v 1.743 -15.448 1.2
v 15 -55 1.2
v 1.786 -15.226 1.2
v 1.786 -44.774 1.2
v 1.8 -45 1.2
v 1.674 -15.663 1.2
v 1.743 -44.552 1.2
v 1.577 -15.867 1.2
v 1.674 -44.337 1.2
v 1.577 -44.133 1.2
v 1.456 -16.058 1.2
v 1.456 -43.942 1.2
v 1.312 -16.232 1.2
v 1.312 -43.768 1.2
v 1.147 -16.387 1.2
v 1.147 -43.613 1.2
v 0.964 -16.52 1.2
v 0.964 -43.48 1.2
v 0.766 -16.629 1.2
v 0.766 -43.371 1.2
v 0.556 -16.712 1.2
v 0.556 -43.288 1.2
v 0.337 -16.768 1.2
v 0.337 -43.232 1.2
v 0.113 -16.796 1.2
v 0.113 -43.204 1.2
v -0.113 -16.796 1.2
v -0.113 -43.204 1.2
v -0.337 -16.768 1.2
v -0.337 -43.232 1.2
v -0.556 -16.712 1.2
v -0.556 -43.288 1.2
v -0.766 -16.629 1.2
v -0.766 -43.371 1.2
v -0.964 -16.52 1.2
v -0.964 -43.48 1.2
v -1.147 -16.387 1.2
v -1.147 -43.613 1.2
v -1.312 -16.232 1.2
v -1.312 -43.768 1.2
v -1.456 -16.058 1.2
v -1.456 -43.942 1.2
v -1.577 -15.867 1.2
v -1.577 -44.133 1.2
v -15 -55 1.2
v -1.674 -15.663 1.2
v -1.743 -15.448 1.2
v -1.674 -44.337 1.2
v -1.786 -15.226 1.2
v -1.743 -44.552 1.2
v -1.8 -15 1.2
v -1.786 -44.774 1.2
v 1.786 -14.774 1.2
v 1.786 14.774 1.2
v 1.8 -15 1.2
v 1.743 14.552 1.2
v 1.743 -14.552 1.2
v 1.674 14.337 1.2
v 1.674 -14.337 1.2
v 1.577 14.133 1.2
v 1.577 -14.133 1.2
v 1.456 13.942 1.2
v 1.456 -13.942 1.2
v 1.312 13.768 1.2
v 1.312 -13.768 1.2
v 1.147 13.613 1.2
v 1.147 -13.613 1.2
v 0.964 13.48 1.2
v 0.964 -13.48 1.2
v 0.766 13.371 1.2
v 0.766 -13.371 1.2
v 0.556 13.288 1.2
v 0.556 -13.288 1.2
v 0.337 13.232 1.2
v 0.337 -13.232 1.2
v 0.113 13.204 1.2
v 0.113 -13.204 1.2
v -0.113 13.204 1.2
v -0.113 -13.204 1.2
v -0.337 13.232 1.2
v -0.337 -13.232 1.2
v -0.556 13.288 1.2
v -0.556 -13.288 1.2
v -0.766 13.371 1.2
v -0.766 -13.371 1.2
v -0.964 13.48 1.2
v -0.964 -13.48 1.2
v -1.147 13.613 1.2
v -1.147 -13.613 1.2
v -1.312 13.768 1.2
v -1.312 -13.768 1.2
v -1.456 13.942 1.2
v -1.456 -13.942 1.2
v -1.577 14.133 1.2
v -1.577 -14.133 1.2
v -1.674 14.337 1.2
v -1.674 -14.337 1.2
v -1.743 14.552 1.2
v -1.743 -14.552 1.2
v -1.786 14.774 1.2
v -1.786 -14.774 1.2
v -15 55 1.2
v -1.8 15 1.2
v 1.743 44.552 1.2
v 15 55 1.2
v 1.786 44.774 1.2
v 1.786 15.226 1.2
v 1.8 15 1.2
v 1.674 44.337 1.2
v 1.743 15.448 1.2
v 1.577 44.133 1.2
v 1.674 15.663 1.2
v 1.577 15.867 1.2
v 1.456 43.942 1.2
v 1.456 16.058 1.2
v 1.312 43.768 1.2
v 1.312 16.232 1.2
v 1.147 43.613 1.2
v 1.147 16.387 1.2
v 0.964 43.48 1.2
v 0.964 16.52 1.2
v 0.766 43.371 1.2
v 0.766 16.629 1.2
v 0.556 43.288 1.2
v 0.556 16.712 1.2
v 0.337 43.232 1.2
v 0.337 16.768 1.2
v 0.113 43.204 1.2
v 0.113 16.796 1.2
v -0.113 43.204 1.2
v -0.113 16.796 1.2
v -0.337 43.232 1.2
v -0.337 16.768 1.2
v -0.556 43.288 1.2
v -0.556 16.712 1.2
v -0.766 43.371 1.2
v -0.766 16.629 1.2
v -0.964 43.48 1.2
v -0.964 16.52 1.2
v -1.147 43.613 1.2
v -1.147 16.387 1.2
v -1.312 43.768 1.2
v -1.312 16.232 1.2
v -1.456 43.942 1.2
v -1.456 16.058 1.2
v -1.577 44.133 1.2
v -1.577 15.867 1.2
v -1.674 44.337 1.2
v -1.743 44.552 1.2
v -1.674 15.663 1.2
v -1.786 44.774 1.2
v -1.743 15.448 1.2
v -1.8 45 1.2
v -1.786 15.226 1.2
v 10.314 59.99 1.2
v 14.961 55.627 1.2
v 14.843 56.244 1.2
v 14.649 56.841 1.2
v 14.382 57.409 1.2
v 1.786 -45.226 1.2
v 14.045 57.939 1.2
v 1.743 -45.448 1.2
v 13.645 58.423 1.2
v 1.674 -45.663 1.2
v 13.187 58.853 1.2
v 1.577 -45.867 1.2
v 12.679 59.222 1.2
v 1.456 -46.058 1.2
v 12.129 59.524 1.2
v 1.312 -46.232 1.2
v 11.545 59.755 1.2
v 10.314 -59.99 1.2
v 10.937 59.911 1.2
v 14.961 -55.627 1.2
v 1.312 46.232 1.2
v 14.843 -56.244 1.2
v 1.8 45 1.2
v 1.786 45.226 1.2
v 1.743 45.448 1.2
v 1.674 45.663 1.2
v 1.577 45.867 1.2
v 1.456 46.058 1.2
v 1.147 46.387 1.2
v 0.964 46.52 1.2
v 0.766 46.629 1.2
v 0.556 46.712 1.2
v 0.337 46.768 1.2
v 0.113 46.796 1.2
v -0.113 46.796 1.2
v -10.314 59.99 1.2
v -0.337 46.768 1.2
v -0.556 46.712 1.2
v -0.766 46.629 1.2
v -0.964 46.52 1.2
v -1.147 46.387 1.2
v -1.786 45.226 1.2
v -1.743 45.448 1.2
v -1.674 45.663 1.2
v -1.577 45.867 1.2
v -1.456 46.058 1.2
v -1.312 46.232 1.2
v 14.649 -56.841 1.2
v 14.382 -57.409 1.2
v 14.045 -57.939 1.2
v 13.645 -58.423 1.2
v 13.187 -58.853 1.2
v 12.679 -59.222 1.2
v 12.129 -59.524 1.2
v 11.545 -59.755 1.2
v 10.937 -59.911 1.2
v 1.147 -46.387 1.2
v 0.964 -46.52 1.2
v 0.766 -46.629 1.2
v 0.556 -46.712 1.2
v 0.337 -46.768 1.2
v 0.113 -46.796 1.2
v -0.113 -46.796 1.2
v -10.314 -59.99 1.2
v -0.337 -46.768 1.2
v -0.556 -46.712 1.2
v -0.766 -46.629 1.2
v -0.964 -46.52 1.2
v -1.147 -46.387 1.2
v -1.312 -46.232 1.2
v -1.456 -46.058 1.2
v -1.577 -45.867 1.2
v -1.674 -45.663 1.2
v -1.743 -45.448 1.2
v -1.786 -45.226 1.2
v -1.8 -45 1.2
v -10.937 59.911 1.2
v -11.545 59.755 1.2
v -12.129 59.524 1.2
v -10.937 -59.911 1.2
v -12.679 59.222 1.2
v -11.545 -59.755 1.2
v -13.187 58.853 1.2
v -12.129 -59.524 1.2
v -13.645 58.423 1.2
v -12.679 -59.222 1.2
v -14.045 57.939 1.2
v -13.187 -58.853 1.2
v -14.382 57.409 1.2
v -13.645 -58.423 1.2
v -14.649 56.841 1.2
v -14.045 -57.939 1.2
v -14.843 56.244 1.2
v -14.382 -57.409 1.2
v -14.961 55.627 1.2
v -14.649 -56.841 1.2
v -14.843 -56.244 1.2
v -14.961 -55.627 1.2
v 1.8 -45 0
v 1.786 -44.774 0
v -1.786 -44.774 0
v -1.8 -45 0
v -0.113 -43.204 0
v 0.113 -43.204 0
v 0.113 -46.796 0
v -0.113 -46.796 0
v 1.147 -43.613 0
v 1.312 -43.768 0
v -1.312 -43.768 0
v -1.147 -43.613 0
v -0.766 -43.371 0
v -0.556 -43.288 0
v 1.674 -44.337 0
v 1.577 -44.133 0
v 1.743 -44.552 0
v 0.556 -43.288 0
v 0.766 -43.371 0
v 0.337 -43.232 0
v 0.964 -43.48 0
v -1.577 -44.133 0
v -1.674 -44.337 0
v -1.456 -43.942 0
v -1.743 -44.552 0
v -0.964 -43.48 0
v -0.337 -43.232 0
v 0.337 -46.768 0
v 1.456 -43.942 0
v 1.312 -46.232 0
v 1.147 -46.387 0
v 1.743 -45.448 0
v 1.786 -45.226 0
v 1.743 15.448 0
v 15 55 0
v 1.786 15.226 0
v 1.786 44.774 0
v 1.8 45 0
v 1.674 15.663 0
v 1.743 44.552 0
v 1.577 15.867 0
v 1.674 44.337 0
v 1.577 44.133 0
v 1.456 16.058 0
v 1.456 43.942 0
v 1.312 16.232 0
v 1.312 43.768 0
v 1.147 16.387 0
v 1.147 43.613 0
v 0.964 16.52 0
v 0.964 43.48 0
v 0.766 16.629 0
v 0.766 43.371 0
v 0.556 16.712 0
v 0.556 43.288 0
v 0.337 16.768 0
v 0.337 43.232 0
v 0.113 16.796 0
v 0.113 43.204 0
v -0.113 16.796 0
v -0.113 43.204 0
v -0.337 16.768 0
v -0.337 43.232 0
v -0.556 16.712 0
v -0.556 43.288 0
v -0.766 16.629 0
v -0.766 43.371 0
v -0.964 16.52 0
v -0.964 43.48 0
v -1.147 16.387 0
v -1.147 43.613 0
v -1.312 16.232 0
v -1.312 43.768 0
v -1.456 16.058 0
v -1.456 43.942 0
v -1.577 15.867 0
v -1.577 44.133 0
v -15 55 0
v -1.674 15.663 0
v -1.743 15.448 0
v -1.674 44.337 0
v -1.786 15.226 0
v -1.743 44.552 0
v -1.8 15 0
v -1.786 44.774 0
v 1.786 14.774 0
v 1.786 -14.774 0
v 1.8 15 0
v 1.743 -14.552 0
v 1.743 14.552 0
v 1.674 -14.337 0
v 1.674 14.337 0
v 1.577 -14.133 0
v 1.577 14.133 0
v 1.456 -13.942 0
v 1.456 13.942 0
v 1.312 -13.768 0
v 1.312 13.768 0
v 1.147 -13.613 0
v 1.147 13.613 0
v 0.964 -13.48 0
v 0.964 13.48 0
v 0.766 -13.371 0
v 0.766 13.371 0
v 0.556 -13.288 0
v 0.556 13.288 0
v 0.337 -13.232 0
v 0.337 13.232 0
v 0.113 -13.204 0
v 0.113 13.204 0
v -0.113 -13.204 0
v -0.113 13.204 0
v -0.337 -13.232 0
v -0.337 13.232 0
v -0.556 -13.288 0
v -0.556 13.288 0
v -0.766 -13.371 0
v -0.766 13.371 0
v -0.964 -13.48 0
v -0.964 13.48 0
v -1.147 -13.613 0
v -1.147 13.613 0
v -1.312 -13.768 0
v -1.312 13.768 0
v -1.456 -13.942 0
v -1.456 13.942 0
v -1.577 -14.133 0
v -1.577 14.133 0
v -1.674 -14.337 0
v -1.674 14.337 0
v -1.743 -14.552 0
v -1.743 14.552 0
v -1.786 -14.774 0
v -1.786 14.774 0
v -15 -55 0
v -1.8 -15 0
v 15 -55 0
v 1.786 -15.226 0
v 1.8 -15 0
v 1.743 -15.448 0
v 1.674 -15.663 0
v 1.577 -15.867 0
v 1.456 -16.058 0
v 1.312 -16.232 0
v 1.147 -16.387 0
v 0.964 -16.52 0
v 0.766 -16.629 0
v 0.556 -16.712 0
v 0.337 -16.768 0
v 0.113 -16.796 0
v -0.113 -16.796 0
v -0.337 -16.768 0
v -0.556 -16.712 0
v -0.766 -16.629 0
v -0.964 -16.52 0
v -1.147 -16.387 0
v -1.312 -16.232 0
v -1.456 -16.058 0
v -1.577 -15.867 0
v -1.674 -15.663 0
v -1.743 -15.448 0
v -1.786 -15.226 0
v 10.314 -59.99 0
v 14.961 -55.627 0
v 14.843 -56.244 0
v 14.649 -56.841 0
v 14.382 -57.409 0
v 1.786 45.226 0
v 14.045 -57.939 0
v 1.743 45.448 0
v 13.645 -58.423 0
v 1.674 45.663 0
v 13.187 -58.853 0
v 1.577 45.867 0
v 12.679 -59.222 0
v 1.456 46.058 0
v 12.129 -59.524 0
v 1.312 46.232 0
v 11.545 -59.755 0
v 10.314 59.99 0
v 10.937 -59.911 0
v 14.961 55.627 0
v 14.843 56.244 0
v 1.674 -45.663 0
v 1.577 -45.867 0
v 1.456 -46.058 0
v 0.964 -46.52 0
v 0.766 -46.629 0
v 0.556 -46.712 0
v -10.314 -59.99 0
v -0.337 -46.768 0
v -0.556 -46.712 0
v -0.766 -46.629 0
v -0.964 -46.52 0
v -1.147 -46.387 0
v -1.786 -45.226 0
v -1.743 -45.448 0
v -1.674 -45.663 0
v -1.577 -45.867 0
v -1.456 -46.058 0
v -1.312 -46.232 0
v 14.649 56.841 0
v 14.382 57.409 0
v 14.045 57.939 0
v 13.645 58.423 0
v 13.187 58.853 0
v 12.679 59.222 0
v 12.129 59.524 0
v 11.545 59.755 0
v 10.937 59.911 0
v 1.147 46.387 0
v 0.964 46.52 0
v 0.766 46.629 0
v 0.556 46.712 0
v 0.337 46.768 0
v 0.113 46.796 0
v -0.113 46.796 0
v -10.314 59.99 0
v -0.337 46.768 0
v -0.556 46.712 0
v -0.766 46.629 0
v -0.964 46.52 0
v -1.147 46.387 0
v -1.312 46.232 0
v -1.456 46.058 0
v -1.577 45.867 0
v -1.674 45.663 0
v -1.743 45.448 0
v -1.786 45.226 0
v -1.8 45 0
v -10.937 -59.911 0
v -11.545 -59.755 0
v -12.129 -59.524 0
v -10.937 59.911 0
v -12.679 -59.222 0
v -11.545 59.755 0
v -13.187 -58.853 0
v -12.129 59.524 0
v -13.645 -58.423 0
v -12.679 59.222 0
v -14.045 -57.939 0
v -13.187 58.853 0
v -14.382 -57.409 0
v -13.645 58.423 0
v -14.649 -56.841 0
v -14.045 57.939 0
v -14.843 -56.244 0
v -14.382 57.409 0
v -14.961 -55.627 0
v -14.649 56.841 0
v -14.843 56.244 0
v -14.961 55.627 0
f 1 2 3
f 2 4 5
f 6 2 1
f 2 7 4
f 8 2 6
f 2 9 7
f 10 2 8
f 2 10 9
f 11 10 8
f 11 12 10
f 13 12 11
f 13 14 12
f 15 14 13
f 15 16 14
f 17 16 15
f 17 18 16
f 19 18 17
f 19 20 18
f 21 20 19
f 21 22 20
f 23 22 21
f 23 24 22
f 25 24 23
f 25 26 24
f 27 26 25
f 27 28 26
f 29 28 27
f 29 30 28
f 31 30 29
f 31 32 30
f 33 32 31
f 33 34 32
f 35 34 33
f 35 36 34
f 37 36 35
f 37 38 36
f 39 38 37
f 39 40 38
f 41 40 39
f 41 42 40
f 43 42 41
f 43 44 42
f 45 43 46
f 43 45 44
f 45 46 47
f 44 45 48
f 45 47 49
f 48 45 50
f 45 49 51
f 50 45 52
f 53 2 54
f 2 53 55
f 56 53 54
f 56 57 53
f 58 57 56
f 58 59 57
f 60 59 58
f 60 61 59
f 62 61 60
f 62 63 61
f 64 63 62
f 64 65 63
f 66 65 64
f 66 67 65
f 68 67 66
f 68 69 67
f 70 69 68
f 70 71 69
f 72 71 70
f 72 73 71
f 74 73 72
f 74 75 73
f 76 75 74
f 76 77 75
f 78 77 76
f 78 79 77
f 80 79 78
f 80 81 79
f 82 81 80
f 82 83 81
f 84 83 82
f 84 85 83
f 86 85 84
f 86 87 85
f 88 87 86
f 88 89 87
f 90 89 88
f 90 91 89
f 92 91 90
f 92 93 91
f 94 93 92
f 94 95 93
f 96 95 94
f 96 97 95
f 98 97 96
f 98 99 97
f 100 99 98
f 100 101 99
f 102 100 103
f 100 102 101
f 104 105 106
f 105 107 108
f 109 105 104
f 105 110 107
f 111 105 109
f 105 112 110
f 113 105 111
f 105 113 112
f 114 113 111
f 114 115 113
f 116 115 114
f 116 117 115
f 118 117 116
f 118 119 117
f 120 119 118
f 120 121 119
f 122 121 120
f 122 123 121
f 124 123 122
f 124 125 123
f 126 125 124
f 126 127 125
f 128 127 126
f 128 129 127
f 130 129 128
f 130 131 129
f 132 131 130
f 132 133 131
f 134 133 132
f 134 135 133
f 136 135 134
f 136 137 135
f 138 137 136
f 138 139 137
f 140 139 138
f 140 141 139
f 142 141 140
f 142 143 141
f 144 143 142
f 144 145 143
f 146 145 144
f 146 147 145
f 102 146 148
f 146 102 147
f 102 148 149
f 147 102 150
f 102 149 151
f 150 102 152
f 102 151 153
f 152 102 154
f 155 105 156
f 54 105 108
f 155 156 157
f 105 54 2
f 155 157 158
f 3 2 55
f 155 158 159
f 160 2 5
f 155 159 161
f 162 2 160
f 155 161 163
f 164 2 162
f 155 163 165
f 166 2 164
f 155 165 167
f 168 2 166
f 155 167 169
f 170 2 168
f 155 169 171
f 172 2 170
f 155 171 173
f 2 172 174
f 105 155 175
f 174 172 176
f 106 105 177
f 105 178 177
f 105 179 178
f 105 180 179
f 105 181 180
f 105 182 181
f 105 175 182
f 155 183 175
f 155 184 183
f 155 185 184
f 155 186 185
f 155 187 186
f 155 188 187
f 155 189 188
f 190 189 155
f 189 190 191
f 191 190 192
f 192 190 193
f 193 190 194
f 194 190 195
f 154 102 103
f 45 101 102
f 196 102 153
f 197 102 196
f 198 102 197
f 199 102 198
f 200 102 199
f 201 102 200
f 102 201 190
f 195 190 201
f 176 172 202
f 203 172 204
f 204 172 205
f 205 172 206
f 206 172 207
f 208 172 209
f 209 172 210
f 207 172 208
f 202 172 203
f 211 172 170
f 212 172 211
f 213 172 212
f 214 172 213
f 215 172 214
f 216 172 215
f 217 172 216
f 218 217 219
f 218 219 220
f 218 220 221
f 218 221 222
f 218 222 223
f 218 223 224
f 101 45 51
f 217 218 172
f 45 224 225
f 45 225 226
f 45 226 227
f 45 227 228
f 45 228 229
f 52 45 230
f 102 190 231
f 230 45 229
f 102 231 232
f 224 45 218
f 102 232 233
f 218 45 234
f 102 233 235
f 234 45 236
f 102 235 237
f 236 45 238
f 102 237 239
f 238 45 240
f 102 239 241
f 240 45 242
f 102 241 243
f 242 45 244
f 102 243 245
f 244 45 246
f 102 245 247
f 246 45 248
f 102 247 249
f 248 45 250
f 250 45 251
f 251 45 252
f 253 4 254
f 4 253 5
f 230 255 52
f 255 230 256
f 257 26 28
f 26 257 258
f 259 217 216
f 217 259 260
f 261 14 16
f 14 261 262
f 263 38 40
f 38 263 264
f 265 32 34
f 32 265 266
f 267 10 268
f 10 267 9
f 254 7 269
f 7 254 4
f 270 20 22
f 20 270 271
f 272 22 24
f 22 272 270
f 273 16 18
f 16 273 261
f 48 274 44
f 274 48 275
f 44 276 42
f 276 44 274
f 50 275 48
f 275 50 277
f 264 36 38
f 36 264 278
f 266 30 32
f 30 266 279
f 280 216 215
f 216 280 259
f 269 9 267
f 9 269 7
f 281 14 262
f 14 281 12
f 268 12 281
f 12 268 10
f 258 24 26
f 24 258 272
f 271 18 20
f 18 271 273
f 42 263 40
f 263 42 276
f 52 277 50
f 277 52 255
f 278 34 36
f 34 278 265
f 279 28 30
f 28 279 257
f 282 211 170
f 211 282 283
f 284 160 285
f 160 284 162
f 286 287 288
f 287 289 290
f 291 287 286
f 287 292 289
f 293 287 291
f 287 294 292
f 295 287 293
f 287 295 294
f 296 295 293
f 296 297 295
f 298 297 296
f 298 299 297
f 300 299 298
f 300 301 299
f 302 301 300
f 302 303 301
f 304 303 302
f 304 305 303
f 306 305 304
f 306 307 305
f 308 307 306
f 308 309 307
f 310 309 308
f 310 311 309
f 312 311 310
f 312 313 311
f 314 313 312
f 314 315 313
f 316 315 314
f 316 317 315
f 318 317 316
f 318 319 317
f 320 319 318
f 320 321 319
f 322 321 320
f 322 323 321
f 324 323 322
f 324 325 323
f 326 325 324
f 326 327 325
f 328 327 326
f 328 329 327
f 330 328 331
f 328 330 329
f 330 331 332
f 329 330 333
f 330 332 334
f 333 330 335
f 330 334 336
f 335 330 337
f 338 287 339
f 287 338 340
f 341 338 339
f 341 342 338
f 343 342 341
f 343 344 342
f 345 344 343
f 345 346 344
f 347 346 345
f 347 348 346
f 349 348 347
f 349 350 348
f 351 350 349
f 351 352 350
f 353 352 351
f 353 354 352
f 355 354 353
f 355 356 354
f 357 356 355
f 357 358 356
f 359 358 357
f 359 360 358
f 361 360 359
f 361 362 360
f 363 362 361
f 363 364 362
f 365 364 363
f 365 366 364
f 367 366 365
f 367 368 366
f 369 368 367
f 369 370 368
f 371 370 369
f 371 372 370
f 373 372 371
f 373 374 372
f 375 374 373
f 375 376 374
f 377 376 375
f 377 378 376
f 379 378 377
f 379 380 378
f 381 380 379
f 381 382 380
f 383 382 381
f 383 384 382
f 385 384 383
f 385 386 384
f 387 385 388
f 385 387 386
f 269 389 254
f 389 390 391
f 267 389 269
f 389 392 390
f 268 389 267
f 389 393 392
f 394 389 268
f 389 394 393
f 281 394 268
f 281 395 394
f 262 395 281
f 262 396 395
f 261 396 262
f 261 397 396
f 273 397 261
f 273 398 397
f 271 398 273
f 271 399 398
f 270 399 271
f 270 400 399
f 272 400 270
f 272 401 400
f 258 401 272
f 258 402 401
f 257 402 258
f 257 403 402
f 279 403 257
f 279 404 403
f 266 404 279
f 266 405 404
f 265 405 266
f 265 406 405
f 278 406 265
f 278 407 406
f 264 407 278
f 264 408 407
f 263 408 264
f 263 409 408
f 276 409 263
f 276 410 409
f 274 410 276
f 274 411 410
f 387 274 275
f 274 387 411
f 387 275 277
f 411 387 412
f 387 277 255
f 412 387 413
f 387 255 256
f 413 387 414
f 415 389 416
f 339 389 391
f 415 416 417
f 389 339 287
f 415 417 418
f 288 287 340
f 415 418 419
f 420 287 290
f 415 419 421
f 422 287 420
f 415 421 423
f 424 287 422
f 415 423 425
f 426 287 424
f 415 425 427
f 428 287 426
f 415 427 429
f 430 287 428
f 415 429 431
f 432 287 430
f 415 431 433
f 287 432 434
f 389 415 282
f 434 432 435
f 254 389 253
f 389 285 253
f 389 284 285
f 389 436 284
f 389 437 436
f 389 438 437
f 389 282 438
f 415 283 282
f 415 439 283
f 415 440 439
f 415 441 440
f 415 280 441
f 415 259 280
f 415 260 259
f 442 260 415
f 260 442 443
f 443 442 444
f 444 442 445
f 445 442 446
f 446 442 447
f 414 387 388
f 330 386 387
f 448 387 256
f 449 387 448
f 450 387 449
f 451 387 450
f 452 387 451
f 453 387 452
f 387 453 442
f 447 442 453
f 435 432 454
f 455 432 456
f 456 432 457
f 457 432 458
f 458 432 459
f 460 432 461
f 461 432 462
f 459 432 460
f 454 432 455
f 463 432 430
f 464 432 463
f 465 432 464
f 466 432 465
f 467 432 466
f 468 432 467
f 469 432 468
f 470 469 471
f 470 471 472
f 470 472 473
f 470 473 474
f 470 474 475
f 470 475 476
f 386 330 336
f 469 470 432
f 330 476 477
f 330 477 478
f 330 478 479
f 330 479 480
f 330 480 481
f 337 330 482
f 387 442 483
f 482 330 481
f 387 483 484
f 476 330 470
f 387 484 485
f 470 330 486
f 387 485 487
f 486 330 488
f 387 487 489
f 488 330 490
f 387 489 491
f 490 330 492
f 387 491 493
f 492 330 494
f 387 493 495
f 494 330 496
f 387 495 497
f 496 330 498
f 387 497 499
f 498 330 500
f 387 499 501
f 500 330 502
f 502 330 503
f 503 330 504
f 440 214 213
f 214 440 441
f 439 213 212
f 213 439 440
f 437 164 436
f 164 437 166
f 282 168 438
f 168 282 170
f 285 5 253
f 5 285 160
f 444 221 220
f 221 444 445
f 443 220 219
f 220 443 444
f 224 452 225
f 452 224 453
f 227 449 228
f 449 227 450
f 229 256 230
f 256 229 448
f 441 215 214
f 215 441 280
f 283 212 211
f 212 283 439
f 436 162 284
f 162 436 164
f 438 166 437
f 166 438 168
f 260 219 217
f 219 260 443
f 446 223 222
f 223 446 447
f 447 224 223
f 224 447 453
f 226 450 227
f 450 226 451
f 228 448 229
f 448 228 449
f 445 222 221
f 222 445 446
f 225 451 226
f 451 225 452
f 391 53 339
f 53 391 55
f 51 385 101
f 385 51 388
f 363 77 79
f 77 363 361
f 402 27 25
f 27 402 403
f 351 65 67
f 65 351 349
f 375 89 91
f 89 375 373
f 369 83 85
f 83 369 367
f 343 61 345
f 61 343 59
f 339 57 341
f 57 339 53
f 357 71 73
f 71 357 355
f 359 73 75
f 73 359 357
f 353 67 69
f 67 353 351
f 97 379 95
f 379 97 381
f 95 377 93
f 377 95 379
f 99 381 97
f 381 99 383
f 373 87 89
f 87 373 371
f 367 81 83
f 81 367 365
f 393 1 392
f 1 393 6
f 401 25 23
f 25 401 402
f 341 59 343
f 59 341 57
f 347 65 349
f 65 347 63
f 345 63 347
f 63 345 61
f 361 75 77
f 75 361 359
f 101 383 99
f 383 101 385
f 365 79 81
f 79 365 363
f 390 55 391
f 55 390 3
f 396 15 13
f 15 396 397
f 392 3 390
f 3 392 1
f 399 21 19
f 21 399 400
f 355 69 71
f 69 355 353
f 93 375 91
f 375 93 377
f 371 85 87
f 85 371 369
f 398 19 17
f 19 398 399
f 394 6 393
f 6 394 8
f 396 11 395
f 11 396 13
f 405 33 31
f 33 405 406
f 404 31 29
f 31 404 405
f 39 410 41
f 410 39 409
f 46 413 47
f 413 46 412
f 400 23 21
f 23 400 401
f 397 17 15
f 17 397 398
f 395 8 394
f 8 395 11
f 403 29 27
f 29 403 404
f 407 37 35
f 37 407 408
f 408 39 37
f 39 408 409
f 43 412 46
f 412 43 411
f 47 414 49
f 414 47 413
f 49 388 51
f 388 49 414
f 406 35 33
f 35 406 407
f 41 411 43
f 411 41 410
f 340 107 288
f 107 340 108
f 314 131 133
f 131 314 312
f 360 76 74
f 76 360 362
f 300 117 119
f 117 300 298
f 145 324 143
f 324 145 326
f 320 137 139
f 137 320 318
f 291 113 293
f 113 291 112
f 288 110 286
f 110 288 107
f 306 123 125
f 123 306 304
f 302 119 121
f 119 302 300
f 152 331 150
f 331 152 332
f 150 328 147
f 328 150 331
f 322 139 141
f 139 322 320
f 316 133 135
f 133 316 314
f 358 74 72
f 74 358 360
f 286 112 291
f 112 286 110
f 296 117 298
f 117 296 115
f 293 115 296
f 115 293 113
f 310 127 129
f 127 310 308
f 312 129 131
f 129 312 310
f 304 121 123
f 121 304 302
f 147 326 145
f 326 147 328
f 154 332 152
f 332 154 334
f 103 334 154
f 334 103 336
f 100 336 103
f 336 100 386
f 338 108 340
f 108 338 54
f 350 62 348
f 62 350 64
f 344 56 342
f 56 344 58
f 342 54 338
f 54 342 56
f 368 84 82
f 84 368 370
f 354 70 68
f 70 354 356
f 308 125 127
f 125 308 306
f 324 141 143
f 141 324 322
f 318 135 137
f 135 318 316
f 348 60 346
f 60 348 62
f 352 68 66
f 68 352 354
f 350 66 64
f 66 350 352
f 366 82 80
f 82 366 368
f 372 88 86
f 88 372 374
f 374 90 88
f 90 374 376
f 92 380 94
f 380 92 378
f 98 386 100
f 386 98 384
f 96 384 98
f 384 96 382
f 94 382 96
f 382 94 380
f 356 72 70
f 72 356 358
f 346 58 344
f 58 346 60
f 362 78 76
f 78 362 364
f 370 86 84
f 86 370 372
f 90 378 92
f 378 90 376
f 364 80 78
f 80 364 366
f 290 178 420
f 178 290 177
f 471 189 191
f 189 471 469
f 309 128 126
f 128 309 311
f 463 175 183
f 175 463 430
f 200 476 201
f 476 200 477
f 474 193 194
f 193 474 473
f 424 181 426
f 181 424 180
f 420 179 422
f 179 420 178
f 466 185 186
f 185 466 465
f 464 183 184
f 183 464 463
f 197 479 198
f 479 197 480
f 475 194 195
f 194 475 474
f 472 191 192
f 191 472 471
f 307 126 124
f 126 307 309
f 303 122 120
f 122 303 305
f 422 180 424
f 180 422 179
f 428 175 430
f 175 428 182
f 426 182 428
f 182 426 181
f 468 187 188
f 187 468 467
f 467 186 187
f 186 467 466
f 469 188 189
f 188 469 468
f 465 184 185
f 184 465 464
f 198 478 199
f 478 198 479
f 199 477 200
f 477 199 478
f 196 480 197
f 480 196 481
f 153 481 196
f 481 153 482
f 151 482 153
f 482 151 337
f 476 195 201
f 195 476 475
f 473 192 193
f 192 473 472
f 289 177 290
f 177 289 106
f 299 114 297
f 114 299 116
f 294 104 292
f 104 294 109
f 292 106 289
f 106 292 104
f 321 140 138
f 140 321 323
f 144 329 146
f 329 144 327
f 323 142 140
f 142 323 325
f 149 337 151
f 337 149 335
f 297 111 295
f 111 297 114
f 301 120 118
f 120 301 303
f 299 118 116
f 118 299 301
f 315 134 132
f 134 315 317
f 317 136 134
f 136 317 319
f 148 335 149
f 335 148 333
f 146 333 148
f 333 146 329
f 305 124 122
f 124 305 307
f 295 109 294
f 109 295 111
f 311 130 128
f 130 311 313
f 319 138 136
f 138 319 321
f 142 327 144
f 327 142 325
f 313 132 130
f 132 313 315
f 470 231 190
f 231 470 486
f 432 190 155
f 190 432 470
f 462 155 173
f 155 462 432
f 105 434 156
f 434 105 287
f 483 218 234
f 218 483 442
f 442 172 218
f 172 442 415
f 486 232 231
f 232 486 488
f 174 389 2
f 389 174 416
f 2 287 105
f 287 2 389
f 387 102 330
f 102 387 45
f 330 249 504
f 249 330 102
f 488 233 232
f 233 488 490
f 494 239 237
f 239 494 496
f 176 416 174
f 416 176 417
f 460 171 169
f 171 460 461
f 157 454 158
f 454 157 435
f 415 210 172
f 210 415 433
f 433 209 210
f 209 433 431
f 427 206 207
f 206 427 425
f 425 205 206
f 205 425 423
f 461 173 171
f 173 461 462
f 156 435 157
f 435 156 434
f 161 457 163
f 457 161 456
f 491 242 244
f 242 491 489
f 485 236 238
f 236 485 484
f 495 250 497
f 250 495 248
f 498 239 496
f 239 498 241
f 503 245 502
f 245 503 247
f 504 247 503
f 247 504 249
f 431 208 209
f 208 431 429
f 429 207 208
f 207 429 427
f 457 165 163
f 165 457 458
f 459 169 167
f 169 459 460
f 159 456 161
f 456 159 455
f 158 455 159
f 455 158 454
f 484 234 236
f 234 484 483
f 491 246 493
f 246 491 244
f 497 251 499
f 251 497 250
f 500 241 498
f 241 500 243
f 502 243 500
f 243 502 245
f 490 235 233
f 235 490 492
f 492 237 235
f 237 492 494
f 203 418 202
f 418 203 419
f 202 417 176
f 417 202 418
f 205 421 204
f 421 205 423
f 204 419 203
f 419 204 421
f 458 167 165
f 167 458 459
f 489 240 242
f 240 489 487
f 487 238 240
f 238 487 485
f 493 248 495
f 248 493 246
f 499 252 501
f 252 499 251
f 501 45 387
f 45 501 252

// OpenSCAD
$fn = 50;


difference() {
	union() {
		hull() {
			translate(v = [-10.0000000000, 55.0000000000, 0]) {
				cylinder(h = 9, r = 5);
			}
			translate(v = [10.0000000000, 55.0000000000, 0]) {
				cylinder(h = 9, r = 5);
			}
			translate(v = [-10.0000000000, -55.0000000000, 0]) {
				cylinder(h = 9, r = 5);
			}
			translate(v = [10.0000000000, -55.0000000000, 0]) {
				cylinder(h = 9, r = 5);
			}
		}
	}
	union() {
		translate(v = [0, 0, 1.2000000000]) {
			hull() {
				translate(v = [-10.0000000000, 55.0000000000, 0]) {
					cylinder(h = 7.8000000000, r = 3.8000000000);
				}
				translate(v = [10.0000000000, 55.0000000000, 0]) {
					cylinder(h = 7.8000000000, r = 3.8000000000);
				}
				translate(v = [-10.0000000000, -55.0000000000, 0]) {
					cylinder(h = 7.8000000000, r = 3.8000000000);
				}
				translate(v = [10.0000000000, -55.0000000000, 0]) {
					cylinder(h = 7.8000000000, r = 3.8000000000);
				}
			}
		}
		#translate(v = [0.0000000000, -45.0000000000, 0]) {
			cylinder(h = 1.2000000000, r = 1.8000000000);
		}
		#translate(v = [0.0000000000, -15.0000000000, 0]) {
			cylinder(h = 1.2000000000, r = 1.8000000000);
		}
		#translate(v = [0.0000000000, 15.0000000000, 0]) {
			cylinder(h = 1.2000000000, r = 1.8000000000);
		}
		#translate(v = [0.0000000000, 45.0000000000, 0]) {
			cylinder(h = 1.2000000000, r = 1.8000000000);
		}
		translate(v = [-250.0000000000, -250.0000000000, 1.2000000000]) {
			cube(size = [500, 500, 500]);
		}
		translate(v = [-250.0000000000, -250.0000000000, 1.2000000000]) {
			cube(size = [500, 500, 500]);
		}
		translate(v = [-250.0000000000, -250.0000000000, 1.2000000000]) {
			cube(size = [500, 500, 500]);
		}
	}
}
